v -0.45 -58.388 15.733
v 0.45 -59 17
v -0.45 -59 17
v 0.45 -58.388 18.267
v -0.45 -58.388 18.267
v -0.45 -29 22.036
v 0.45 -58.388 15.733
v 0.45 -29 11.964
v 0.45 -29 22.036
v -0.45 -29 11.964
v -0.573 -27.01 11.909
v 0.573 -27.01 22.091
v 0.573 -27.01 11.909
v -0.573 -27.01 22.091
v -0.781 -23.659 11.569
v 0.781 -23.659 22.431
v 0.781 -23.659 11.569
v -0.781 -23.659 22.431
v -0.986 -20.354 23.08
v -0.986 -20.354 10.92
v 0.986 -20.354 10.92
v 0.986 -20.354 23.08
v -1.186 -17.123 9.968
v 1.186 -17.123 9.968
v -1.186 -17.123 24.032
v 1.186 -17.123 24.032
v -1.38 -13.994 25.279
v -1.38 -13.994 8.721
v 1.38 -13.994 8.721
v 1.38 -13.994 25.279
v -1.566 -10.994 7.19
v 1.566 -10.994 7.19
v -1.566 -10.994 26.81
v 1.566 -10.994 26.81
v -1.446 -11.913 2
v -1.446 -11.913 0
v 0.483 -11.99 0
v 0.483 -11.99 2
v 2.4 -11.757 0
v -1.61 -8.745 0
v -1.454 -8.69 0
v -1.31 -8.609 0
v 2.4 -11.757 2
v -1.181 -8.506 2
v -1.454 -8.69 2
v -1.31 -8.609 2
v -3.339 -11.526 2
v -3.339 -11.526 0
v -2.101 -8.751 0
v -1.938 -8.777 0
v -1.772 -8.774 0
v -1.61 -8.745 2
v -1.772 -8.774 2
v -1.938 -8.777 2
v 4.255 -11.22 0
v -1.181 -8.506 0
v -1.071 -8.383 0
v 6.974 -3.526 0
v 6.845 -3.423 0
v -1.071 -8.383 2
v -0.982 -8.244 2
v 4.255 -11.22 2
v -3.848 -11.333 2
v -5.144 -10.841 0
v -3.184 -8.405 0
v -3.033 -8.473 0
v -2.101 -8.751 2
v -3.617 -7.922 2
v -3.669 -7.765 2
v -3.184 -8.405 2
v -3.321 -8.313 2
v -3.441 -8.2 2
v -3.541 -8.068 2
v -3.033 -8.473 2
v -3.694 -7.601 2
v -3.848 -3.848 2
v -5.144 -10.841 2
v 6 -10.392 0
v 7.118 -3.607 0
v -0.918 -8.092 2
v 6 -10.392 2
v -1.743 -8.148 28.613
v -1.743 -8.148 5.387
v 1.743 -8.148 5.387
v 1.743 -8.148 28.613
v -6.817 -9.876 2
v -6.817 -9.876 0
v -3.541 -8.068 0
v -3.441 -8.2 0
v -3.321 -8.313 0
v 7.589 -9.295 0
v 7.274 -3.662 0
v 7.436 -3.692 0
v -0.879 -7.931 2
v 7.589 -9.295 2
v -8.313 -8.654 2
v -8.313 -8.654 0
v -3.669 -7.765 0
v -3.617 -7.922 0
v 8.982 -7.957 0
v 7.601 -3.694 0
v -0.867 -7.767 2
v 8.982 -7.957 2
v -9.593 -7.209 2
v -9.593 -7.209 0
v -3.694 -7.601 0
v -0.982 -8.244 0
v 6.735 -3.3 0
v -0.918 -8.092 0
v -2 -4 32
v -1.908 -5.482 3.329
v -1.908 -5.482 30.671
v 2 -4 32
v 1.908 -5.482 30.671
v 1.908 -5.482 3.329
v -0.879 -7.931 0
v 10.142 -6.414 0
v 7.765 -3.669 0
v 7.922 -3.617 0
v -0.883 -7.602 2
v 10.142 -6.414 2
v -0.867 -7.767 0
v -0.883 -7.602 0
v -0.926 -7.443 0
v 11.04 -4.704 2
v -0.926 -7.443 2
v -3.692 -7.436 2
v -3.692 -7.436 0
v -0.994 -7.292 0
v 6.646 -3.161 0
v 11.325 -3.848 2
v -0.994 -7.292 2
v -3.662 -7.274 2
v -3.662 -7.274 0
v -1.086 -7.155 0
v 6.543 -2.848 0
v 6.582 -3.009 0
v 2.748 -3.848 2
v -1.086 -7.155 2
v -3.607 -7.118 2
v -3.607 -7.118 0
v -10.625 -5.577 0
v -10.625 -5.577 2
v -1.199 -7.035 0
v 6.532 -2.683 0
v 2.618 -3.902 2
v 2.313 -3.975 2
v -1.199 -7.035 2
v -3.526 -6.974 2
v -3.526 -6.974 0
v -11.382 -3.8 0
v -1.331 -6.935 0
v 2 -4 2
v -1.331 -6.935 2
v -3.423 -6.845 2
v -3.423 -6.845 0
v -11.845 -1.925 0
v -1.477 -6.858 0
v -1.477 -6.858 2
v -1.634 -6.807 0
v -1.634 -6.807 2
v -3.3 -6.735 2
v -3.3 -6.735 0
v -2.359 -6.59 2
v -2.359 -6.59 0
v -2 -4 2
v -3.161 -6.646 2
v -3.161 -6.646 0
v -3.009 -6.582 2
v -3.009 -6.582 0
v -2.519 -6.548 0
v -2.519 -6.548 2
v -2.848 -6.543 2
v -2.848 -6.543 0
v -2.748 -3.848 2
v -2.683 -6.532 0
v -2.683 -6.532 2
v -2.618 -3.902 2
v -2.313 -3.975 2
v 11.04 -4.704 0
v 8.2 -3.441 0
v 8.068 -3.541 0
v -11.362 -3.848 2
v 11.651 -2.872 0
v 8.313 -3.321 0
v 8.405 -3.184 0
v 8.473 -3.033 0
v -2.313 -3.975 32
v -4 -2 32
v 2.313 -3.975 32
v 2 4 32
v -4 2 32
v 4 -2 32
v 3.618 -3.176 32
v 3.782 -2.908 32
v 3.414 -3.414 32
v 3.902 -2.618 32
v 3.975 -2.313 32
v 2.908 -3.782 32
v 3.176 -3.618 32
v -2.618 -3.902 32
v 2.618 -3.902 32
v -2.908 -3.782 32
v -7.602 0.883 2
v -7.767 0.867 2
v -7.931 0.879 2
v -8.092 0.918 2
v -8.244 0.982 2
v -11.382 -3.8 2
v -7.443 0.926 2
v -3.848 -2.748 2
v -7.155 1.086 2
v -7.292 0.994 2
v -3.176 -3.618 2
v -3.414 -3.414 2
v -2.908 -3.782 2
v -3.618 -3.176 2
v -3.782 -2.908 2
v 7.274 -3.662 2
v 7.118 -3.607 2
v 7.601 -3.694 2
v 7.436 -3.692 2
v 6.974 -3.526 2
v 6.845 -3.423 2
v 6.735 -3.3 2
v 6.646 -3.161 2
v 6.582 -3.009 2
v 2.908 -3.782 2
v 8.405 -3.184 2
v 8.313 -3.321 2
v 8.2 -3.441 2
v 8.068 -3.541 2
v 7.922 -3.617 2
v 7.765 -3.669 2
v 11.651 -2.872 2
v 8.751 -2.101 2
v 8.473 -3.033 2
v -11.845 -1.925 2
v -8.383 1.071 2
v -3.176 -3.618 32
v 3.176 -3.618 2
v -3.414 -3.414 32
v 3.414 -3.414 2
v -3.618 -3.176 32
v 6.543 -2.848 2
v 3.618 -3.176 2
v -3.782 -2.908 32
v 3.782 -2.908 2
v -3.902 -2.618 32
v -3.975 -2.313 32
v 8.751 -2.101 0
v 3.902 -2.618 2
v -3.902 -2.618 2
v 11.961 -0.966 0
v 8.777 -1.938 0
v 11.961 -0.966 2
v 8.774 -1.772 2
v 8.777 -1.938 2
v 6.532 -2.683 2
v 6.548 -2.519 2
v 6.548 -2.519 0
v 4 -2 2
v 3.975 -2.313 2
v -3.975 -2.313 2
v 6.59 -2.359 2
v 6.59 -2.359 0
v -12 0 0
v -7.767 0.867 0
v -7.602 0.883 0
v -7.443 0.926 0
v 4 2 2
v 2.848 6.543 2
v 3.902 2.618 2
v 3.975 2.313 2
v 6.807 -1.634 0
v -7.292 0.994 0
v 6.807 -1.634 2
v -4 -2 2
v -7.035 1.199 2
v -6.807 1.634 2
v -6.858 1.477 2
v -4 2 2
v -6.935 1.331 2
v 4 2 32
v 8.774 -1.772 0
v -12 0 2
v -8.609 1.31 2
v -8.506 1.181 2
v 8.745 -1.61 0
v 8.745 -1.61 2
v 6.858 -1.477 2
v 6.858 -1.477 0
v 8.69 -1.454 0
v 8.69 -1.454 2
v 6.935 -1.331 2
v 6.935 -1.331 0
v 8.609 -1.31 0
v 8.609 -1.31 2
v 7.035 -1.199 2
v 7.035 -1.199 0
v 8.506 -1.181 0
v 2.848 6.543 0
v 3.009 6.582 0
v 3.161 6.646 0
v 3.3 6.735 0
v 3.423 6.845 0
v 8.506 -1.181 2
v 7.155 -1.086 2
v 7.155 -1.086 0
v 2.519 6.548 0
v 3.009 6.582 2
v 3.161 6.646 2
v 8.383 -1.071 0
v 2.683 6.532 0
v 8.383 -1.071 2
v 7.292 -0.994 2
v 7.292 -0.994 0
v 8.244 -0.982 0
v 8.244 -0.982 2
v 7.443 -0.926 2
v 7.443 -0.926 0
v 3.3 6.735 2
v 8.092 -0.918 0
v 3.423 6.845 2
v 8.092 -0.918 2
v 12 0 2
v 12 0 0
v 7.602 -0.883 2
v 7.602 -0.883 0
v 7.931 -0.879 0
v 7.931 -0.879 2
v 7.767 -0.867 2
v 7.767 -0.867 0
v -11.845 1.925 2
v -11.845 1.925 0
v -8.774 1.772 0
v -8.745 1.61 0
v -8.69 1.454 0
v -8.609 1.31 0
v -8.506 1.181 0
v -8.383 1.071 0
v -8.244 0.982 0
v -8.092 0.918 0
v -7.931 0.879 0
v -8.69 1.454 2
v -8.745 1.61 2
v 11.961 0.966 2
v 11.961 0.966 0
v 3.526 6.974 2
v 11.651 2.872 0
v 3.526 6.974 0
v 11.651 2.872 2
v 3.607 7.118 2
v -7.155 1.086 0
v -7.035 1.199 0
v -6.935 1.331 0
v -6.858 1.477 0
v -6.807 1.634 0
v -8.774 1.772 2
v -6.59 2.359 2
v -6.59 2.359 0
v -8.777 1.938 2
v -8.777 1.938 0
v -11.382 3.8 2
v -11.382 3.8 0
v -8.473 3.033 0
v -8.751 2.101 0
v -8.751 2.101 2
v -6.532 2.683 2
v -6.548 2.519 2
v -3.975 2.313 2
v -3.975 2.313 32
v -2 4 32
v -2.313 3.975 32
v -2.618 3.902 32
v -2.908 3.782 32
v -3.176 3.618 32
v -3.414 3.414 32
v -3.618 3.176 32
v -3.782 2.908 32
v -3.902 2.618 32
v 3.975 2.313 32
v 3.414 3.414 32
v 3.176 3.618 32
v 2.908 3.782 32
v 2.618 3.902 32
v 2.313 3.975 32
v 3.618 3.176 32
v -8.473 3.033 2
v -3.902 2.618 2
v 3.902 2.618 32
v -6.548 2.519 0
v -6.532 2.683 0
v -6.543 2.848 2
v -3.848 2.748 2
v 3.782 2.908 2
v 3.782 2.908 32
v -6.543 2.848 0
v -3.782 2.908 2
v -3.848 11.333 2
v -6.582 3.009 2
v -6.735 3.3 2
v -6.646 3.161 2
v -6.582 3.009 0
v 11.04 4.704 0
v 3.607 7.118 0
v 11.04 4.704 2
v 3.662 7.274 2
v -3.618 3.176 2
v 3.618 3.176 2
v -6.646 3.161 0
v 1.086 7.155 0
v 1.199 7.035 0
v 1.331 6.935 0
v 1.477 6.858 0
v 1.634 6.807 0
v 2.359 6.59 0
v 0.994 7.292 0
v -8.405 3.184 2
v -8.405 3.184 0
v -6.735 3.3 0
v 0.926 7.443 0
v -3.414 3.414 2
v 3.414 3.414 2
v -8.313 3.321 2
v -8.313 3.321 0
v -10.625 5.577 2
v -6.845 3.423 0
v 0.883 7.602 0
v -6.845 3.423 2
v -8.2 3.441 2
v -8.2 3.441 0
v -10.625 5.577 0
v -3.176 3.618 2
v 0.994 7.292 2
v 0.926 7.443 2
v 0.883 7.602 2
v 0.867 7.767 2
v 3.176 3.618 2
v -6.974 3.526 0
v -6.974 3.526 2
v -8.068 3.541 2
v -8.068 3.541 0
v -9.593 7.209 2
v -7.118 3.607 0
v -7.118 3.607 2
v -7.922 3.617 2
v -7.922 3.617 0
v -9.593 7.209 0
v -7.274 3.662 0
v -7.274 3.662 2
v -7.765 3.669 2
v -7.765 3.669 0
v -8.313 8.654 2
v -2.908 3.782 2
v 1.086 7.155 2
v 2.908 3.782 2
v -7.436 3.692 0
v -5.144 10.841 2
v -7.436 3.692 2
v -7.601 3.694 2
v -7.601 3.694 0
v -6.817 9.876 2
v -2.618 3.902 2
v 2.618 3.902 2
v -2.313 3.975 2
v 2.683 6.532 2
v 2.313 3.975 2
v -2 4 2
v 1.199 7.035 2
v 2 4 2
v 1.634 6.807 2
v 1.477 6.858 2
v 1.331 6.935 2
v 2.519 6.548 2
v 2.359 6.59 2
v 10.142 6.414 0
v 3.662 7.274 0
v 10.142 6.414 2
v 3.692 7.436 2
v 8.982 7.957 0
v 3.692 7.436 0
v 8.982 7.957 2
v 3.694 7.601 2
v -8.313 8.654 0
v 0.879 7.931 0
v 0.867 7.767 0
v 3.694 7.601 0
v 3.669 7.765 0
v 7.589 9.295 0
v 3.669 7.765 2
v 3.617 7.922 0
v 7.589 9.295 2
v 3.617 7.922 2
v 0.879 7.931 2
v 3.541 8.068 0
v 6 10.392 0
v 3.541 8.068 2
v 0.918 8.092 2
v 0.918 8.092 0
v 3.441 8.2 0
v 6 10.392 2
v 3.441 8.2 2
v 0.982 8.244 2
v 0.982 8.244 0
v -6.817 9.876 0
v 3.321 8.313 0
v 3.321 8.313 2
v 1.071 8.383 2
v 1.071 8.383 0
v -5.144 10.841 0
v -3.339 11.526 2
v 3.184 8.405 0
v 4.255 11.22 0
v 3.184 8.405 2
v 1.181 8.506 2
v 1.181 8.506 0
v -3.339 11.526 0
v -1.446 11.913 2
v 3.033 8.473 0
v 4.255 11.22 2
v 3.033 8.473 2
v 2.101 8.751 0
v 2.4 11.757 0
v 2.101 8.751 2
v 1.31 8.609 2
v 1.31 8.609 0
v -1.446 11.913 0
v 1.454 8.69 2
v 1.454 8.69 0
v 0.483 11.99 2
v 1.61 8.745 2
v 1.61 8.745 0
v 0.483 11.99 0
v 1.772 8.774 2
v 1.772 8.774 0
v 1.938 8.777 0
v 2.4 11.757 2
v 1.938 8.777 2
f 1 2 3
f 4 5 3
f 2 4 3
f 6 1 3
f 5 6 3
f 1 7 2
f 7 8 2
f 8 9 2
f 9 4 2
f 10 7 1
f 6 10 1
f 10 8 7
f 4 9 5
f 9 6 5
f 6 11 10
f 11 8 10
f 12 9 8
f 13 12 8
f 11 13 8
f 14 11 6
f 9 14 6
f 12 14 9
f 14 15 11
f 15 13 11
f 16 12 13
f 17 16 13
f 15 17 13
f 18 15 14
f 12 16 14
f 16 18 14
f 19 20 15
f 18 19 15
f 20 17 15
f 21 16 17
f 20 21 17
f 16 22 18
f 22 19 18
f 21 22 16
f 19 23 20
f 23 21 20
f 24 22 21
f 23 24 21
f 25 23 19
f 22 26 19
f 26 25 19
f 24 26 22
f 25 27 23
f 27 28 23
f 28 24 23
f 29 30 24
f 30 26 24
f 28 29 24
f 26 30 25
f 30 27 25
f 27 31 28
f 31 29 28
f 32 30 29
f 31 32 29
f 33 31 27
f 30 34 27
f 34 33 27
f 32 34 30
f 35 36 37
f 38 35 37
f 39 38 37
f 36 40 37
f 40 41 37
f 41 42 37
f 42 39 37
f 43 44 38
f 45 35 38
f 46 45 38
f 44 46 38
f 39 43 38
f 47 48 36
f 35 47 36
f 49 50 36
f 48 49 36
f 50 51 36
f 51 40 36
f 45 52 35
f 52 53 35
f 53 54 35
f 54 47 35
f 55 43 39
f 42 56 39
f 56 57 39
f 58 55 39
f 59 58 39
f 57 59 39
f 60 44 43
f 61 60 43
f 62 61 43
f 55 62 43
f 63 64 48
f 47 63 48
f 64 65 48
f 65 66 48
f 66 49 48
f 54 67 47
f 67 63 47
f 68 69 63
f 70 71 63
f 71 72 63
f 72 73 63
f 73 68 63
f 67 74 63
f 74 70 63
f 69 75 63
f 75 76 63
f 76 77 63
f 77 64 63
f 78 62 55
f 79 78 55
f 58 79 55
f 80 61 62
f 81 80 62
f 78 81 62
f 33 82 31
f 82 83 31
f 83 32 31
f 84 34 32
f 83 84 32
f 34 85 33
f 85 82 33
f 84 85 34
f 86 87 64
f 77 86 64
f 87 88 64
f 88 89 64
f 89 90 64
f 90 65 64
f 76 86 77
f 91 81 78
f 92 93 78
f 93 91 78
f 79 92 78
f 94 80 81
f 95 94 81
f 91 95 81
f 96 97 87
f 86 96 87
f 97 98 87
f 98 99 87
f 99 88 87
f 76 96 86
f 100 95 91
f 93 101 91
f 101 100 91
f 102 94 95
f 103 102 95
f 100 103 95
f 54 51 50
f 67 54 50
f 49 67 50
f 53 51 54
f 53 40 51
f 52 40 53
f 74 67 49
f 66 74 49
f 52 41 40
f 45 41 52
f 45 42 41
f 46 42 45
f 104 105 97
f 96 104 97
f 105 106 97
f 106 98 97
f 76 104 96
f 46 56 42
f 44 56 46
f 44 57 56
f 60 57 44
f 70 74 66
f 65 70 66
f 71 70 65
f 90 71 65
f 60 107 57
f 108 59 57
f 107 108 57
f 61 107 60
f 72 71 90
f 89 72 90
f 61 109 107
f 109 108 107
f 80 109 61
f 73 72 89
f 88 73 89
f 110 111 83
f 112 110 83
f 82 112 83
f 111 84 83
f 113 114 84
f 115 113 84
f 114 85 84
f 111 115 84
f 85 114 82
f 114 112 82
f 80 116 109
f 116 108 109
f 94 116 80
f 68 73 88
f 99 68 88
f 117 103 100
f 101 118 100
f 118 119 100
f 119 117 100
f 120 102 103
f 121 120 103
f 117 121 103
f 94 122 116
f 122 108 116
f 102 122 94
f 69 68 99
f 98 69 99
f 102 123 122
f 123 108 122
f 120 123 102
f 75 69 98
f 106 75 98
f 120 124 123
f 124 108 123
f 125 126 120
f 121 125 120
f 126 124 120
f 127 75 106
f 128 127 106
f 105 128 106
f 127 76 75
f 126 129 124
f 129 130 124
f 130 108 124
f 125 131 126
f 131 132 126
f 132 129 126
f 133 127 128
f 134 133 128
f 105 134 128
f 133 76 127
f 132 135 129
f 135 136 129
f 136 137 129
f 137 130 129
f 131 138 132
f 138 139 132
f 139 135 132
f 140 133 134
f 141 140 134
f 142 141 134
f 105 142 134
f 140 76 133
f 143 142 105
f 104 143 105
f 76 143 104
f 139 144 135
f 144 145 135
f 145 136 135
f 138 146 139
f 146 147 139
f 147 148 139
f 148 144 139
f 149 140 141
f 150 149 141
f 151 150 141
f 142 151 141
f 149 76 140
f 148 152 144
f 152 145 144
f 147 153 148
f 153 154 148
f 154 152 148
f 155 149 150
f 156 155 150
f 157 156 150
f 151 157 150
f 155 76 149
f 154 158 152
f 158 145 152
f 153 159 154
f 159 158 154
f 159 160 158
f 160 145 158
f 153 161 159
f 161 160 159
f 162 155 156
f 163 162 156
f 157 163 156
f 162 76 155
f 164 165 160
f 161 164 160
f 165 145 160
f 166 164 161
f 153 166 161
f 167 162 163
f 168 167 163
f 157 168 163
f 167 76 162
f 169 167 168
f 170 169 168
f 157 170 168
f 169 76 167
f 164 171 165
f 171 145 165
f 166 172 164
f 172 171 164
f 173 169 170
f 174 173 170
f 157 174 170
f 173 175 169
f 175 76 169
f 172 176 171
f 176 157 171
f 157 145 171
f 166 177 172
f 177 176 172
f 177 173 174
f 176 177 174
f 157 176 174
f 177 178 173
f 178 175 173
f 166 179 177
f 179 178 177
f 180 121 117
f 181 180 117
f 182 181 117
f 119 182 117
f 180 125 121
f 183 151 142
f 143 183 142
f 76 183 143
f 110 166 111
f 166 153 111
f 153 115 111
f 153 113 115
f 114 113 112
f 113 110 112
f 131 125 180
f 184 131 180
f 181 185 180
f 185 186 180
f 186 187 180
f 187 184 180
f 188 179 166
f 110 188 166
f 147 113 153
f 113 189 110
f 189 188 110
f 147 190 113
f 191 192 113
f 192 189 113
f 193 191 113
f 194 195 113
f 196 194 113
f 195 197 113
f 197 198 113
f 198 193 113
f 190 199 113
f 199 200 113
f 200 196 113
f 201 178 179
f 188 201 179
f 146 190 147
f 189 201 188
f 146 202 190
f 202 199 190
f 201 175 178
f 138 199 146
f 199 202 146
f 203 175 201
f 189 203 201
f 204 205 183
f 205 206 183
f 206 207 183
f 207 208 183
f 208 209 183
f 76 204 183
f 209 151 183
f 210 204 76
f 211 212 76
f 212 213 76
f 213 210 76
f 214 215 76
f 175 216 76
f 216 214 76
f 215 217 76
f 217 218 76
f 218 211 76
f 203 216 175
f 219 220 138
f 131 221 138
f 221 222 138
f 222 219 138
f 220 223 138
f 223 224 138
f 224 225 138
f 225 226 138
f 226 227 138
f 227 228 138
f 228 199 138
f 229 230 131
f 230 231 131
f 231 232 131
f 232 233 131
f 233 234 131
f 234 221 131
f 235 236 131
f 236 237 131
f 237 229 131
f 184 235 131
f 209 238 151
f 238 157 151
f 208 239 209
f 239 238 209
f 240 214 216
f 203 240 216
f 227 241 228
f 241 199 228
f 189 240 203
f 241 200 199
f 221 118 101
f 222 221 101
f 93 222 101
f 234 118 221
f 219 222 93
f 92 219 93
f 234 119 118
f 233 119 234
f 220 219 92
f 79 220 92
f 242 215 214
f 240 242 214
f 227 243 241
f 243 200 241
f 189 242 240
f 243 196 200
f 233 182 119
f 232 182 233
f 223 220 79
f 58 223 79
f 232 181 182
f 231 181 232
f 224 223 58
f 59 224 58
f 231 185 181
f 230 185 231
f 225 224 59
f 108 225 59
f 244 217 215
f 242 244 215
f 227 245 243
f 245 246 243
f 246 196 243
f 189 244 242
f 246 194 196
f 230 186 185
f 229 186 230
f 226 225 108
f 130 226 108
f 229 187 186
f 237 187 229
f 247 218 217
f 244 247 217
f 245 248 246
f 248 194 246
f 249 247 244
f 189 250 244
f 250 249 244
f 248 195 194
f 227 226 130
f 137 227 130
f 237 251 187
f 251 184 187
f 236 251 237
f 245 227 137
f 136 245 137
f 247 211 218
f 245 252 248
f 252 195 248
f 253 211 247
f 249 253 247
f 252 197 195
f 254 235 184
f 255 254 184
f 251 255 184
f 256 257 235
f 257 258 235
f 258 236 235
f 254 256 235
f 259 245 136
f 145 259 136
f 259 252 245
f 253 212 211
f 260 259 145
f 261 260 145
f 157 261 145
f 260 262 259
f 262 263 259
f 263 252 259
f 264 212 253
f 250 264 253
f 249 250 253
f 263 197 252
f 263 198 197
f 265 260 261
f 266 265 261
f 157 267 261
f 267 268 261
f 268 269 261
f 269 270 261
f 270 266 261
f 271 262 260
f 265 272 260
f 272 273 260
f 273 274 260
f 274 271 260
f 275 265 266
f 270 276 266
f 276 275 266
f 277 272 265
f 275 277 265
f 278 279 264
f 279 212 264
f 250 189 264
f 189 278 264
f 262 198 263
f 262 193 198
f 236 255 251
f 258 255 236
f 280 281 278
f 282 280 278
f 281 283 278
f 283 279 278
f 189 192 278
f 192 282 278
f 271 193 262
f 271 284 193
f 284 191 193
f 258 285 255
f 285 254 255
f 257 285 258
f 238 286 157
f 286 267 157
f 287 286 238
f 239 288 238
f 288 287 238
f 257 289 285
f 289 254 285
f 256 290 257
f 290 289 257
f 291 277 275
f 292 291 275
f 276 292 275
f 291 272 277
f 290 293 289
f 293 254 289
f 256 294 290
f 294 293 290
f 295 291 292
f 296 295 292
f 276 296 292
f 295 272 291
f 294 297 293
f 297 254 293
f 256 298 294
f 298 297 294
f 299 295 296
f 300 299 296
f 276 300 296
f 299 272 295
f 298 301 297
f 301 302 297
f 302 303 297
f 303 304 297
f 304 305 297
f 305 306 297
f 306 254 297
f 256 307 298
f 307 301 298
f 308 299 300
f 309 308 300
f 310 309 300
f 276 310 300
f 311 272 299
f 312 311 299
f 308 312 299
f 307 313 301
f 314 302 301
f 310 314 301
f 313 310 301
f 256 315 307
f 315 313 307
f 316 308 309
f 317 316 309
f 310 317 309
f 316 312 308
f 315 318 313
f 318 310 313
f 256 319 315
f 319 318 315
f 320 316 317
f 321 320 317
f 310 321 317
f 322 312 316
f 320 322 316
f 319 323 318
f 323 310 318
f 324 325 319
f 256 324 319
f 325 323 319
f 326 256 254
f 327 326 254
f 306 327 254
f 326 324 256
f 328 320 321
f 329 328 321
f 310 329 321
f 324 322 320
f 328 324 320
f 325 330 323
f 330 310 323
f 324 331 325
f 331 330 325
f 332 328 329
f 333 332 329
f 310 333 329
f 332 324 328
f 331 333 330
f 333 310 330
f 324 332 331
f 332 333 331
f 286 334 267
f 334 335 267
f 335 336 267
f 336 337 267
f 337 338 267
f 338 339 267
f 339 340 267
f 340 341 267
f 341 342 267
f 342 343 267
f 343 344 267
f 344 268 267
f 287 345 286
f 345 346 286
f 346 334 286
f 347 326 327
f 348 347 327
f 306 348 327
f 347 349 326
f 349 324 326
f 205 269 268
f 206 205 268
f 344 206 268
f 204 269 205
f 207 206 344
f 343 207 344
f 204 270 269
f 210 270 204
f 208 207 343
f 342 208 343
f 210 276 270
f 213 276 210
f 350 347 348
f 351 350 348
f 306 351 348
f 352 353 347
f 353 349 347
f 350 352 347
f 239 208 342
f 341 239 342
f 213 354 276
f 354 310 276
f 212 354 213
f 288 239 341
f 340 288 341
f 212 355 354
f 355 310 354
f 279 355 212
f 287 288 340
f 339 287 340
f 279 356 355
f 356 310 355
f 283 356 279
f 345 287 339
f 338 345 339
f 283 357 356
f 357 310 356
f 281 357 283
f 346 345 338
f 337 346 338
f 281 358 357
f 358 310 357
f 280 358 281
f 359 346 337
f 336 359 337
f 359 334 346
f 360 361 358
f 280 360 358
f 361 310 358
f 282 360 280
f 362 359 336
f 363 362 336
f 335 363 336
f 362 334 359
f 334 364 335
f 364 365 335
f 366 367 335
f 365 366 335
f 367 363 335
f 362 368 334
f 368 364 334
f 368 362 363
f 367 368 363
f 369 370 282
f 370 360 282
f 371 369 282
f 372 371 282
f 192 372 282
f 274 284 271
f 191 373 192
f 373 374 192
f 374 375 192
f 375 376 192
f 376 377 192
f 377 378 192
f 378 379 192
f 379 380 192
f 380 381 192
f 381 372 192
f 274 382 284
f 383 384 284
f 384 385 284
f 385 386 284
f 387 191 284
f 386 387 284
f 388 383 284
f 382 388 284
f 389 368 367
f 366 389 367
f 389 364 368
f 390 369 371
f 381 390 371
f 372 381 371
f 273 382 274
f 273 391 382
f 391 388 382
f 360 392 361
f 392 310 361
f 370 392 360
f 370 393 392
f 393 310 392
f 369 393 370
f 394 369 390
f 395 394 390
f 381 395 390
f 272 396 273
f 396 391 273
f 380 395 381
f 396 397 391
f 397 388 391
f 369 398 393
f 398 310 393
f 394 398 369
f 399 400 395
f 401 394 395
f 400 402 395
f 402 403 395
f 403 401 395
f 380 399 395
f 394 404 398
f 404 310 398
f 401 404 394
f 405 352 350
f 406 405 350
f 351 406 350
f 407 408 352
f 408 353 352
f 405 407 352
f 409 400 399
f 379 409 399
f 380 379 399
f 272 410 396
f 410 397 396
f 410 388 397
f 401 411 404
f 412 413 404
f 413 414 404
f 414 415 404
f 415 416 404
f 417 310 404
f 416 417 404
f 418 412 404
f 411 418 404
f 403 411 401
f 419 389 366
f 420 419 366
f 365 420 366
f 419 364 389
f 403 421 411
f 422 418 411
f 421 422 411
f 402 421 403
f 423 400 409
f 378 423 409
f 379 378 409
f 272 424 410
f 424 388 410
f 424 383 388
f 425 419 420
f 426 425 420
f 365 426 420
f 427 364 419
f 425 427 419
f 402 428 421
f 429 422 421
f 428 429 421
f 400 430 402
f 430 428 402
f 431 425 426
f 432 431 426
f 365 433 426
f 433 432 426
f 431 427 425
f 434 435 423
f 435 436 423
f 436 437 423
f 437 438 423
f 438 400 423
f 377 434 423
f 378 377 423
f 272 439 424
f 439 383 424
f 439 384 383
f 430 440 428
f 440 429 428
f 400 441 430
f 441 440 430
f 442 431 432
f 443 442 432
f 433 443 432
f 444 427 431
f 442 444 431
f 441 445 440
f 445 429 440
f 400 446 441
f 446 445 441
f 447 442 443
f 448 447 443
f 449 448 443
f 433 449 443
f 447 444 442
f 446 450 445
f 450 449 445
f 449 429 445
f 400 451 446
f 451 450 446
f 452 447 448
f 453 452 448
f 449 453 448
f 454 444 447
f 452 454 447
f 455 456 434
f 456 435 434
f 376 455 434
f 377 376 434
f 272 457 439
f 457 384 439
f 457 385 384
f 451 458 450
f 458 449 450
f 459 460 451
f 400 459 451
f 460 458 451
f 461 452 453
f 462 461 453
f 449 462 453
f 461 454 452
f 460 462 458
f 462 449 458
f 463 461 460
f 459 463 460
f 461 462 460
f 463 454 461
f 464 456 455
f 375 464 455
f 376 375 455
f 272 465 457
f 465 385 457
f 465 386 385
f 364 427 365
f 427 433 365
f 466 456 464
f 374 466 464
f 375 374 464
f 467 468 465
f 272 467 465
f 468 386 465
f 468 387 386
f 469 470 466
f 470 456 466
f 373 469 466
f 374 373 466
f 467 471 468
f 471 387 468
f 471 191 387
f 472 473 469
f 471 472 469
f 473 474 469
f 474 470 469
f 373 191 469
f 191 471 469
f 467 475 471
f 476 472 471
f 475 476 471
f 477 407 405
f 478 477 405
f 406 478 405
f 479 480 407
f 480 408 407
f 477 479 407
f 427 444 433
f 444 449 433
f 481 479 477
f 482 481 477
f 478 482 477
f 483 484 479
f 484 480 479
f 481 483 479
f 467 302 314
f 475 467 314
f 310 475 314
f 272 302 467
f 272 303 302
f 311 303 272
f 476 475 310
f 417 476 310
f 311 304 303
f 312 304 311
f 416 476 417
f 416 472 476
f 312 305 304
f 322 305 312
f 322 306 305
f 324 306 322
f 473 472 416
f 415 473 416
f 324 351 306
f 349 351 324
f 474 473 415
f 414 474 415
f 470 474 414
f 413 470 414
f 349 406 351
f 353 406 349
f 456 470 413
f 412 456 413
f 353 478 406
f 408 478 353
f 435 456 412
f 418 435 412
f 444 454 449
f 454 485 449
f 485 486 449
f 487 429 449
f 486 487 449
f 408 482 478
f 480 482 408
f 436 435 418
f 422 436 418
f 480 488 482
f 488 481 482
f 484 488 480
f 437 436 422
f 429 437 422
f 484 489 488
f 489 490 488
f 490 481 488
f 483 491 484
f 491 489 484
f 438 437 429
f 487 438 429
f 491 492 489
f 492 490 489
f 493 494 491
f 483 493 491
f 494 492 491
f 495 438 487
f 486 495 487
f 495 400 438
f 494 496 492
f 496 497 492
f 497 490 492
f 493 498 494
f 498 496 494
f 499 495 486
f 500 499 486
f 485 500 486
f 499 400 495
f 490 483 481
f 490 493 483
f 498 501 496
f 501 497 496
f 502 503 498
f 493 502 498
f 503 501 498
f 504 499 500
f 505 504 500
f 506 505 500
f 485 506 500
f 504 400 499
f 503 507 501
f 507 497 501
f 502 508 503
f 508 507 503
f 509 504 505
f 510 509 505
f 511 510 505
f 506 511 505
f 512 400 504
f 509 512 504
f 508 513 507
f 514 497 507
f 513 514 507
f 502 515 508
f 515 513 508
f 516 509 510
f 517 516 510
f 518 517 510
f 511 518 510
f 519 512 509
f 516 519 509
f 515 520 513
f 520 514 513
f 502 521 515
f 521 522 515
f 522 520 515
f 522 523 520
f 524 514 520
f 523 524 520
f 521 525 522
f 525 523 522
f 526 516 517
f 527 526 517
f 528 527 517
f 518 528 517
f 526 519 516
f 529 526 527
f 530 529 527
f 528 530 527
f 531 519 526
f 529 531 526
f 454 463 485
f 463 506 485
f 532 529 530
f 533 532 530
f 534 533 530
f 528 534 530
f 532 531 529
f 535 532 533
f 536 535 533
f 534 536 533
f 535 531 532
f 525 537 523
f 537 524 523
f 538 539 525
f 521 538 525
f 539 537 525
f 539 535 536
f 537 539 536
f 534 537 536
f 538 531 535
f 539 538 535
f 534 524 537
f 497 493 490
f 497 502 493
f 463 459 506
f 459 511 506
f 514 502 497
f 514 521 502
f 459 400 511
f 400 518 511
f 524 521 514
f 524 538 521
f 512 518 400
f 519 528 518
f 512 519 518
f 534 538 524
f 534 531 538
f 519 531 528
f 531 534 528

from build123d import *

# Parameters (mm, degrees)
ESQUISSE1_R             = 12
BOSS_EXTRU_1_DEPTH      = 2
BOSS_EXTRU_2_DEPTH      = 30
BOSS_EXTRU_3_DEPTH      = 0.45
ENL_V_MAT_EXTRU_1_REACH = 71


with BuildPart() as part:
    # Esquisse1 → Boss.-Extru.1 (new body)
    with BuildSketch(Plane.XY):
        Circle(ESQUISSE1_R)
        with BuildLine():
            ThreePointArc((-8.473394023, 3.033412884), (-8.624994546, 2.570888774), (-8.751368421, 2.10084525))
            ThreePointArc((-8.751368421, 2.10084525), (-8.012421402, 0.895043731), (-6.806619883, 1.63399075))
            ThreePointArc((-6.806619883, 1.63399075), (-6.708329091, 1.999580157), (-6.590417574, 2.359321132))
            ThreePointArc((-6.590417574, 2.359321132), (-7.194859923, 3.637855233), (-8.473394023, 3.033412884))
        make_face(mode=Mode.SUBTRACT)
        with BuildLine():
            ThreePointArc((3.033412884, 8.473394023), (2.570888774, 8.624994546), (2.10084525, 8.751368421))
            ThreePointArc((2.10084525, 8.751368421), (0.895043731, 8.012421402), (1.63399075, 6.806619883))
            ThreePointArc((1.63399075, 6.806619883), (1.999580157, 6.708329091), (2.359321132, 6.590417574))
            ThreePointArc((2.359321132, 6.590417574), (3.637855233, 7.194859923), (3.033412884, 8.473394023))
        make_face(mode=Mode.SUBTRACT)
        with BuildLine():
            ThreePointArc((8.473394023, -3.033412884), (8.624994546, -2.570888774), (8.751368421, -2.10084525))
            ThreePointArc((8.751368421, -2.10084525), (8.012421402, -0.895043731), (6.806619883, -1.63399075))
            ThreePointArc((6.806619883, -1.63399075), (6.708329091, -1.999580157), (6.590417574, -2.359321132))
            ThreePointArc((6.590417574, -2.359321132), (7.194859923, -3.637855233), (8.473394023, -3.033412884))
        make_face(mode=Mode.SUBTRACT)
        with BuildLine():
            ThreePointArc((-3.033412884, -8.473394023), (-2.570888774, -8.624994546), (-2.10084525, -8.751368421))
            ThreePointArc((-2.10084525, -8.751368421), (-0.895043731, -8.012421402), (-1.63399075, -6.806619883))
            ThreePointArc((-1.63399075, -6.806619883), (-1.999580157, -6.708329091), (-2.359321132, -6.590417574))
            ThreePointArc((-2.359321132, -6.590417574), (-3.637855233, -7.194859923), (-3.033412884, -8.473394023))
        make_face(mode=Mode.SUBTRACT)
    extrude(amount=BOSS_EXTRU_1_DEPTH)

    # Esquisse2 → Boss.-Extru.2 (add)
    with BuildSketch(Plane.XY.offset(2)):
        with BuildLine():
            Line((-2, 4), (2, 4))
            ThreePointArc((2, 4), (3.414213562, 3.414213562), (4, 2))
            Line((4, 2), (4, -2))
            ThreePointArc((4, -2), (3.414213562, -3.414213562), (2, -4))
            Line((2, -4), (-2, -4))
            ThreePointArc((-2, -4), (-3.414213562, -3.414213562), (-4, -2))
            Line((-4, -2), (-4, 2))
            ThreePointArc((-4, 2), (-3.414213562, 3.414213562), (-2, 4))
        make_face()
    extrude(amount=BOSS_EXTRU_2_DEPTH)


with BuildPart() as body_2:
    # Esquisse3 → Boss.-Extru.3 (new, symmetric)
    with BuildSketch(Plane(origin=(0, 0, 0), x_dir=(0, 0, -1), z_dir=(1, 0, 0))):
        with BuildLine():
            Line((-11.963767642, -29), (-22.036232358, -29))
            Line((-22.036232358, -29), (-18.266617818, -58.387853285))
            ThreePointArc((-18.266617818, -58.387853285), (-17.638228926, -58.70410685), (-17, -59))
            ThreePointArc((-17, -59), (-16.361771074, -58.70410685), (-15.733382182, -58.387853285))
            Line((-15.733382182, -58.387853285), (-11.963767642, -29))
        make_face()
    extrude(amount=BOSS_EXTRU_3_DEPTH, both=True)


    add(part.part)  # lissage1 joins it to this body
    # loft from a face of the part (lissage1)
    loft([body_2.faces().sort_by_distance((0, -29, 17))[0], body_2.faces().sort_by_distance((0, -4, 17))[0]])

    # Enlèv. mat.-Extru.1: up to this plane
    enl_v_mat_extru_1_end = Plane(origin=(-2.239391778, -0.13884229, 0), z_dir=(-0.998083523435423, -0.061881178452996184, 0))
    # Esquisse5 → Enlèv. mat.-Extru.1 (cut, up to the surface)
    with BuildSketch(Plane.ZY.offset(-4), mode=Mode.PRIVATE) as enl_v_mat_extru_1_sk1:
        with BuildLine():
            ThreePointArc((32, -4), (24.618937512, -15.543805649), (22.036232358, -29))
            Line((22.036232358, -29), (32, -4))
        make_face()
    enl_v_mat_extru_1_tool1 = split(extrude(enl_v_mat_extru_1_sk1.sketch, amount=ENL_V_MAT_EXTRU_1_REACH, mode=Mode.PRIVATE), bisect_by=enl_v_mat_extru_1_end, keep=Keep.BOTH, mode=Mode.PRIVATE)
    add(enl_v_mat_extru_1_tool1.solids().sort_by_distance((4, -16.116333, 26.055461))[0], mode=Mode.SUBTRACT)
    # Esquisse5 → Enlèv. mat.-Extru.1 (cut, up to the surface)
    with BuildSketch(Plane.ZY.offset(-4), mode=Mode.PRIVATE) as enl_v_mat_extru_1_sk2:
        with BuildLine():
            Line((32, -4), (22.036232358, -29))
            ThreePointArc((22.036232358, -29), (58.381754034, -65.345521676), (94.727275711, -29))
            ThreePointArc((94.727275711, -29), (71.837948385, 4.762816522), (32, -4))
        make_face()
    enl_v_mat_extru_1_tool2 = split(extrude(enl_v_mat_extru_1_sk2.sketch, amount=ENL_V_MAT_EXTRU_1_REACH, mode=Mode.PRIVATE), bisect_by=enl_v_mat_extru_1_end, keep=Keep.BOTH, mode=Mode.PRIVATE)
    add(enl_v_mat_extru_1_tool2.solids().sort_by_distance((4, -29.146557, 58.74948))[0], mode=Mode.SUBTRACT)
    # Esquisse5 → Enlèv. mat.-Extru.1 (cut, up to the surface)
    with BuildSketch(Plane.ZY.offset(-4), mode=Mode.PRIVATE) as enl_v_mat_extru_1_sk3:
        with BuildLine():
            Line((2, -4), (11.963767642, -29))
            ThreePointArc((11.963767642, -29), (9.381062488, -15.543805649), (2, -4))
        make_face()
    enl_v_mat_extru_1_tool3 = split(extrude(enl_v_mat_extru_1_sk3.sketch, amount=ENL_V_MAT_EXTRU_1_REACH, mode=Mode.PRIVATE), bisect_by=enl_v_mat_extru_1_end, keep=Keep.BOTH, mode=Mode.PRIVATE)
    add(enl_v_mat_extru_1_tool3.solids().sort_by_distance((4, -16.116333, 7.944539))[0], mode=Mode.SUBTRACT)


solid = body_2.part
